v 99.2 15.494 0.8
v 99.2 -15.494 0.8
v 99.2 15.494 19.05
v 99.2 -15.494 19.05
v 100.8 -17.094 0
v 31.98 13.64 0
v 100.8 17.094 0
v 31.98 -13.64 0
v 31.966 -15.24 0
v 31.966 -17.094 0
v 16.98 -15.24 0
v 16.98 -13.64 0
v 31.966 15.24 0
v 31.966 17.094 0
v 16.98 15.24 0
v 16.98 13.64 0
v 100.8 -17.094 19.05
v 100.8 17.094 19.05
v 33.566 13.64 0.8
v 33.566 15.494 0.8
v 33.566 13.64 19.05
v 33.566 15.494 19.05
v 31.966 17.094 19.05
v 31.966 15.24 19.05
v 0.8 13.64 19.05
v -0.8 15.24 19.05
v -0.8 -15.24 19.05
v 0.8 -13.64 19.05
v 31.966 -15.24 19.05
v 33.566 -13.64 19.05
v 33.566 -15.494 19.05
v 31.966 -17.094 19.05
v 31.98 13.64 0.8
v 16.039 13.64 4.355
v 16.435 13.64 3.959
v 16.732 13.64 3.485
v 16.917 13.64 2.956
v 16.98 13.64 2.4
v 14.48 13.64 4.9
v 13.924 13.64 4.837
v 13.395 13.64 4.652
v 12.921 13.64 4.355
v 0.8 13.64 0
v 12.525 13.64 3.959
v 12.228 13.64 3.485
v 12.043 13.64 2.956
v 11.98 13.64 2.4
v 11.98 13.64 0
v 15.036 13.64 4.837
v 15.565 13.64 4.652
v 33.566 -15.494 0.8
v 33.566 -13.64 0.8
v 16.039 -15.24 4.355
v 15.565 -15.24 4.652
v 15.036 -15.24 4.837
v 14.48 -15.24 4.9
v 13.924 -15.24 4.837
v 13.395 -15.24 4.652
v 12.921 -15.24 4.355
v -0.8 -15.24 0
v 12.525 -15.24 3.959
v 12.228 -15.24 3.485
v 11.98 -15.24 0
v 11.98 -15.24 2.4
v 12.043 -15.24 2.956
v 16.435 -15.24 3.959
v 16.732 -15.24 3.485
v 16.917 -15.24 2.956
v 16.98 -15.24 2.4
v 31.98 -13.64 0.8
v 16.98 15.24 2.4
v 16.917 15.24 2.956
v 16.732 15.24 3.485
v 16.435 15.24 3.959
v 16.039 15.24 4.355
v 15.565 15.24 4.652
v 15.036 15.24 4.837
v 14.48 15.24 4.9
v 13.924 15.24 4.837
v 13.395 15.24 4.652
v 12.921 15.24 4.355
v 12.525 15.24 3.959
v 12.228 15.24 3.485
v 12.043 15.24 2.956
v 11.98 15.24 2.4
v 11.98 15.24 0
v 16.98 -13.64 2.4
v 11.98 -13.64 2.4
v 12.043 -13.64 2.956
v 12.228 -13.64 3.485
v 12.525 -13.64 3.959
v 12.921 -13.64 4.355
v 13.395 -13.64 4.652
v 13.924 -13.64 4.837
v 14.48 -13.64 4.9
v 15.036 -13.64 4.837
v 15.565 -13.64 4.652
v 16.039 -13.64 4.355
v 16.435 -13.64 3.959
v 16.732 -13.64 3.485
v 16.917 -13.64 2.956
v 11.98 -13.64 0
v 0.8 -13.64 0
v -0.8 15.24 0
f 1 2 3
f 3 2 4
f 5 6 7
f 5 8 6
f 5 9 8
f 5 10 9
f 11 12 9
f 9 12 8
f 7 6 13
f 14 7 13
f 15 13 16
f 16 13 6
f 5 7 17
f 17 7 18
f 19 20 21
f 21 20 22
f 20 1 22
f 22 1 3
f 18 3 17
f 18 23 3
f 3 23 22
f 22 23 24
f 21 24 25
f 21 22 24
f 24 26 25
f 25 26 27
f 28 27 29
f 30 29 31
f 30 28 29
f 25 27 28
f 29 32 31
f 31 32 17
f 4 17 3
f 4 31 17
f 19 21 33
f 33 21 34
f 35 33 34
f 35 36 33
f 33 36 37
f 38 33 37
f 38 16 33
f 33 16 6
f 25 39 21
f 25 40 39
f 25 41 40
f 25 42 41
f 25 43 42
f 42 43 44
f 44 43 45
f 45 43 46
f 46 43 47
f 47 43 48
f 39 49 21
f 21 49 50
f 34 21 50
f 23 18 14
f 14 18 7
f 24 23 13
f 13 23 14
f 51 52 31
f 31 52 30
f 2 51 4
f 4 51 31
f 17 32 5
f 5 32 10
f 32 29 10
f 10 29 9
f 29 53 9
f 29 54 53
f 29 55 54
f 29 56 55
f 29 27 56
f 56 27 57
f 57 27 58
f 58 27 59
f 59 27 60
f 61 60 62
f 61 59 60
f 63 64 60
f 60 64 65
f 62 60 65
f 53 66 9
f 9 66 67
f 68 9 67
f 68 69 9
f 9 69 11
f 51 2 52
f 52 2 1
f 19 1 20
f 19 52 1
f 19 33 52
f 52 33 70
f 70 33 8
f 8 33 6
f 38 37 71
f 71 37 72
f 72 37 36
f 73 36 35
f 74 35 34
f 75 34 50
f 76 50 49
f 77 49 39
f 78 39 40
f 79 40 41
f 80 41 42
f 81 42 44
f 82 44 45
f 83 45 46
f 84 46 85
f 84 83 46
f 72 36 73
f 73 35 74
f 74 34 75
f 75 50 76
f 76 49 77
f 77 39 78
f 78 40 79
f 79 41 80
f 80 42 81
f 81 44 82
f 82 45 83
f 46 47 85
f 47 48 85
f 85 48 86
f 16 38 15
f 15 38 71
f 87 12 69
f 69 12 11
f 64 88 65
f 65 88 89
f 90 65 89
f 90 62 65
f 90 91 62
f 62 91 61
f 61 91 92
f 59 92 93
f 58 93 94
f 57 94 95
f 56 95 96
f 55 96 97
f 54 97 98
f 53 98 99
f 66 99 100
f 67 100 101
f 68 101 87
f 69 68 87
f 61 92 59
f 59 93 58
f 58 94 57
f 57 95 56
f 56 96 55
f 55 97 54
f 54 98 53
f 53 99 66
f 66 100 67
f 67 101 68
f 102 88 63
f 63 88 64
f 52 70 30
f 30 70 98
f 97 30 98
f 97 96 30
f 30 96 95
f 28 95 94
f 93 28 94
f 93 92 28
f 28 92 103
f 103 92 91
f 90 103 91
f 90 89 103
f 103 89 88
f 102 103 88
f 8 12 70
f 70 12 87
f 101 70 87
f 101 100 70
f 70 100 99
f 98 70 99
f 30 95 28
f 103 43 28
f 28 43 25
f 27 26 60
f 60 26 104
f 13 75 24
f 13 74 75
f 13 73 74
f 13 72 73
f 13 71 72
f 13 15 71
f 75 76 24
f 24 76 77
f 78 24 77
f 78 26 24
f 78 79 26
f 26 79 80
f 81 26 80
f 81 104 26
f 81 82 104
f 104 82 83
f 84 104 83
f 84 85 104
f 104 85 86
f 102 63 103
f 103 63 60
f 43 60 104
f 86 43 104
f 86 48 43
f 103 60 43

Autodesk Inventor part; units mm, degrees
ref_plane "YZ Plane" through (0, 0, 0) normal (1, 0, 0) x (0, 1, 0)
ref_plane "XZ Plane" through (0, 0, 0) normal (0, 1, 0) x (-1, 0, 0)
ref_plane "XY Plane" through (0, 0, 0) normal (0, 0, 1) x (1, 0, 0)
sketch "Sketch1" plane through (0, 0, 0) normal (0, 0, 1) x (1, 0, 0)
  line L0 (0.8, -15.24) -> (-0.8, -15.24)
  line L1 (-0.8, -15.24) -> (-0.8, 15.24)
  line L2 (-0.8, 15.24) -> (0.8, 15.24)
  line L3 (0.8, 15.24) -> (0.8, -15.24)
  line L4 (0.8, -15.24) -> (-0.8, 15.24) construction
  line L5 (-0.8, -15.24) -> (0.8, 15.24) construction
  line L6 (-0.8, -15.24) -> (100.8, -15.24)
  line L7 (100.8, -15.24) -> (100.8, -13.64)
  line L8 (100.8, -13.64) -> (-0.8, -13.64)
  line L9 (-0.8, -13.64) -> (-0.8, -15.24)
  line L10 (-0.8, 15.24) -> (100.8, 15.24)
  line L11 (100.8, 15.24) -> (100.8, 13.64)
  line L12 (100.8, 13.64) -> (-0.8, 13.64)
  line L13 (-0.8, 13.64) -> (-0.8, 15.24)
  line L14 (100.8, -15.24) -> (99.2, -15.24)
  line L15 (99.2, -15.24) -> (99.2, 15.24)
  line L16 (99.2, 15.24) -> (100.8, 15.24)
  line L17 (100.8, 15.24) -> (100.8, -15.24)
  point P0 (0, 0)
  dimension "d0" = 1.6
  dimension "d1" = 30.48
  dimension "d2" = 101.6
  dimension "d3" = 1.6
  dimension "d4" = 101.6
  dimension "d5" = 1.6
  dimension "d6" = 1.6
extrude "Extrusion1" add sketch "Sketch1" along normal blind 19.05 contours L0 L1 L8 L3 | L3 L8 L15 L6 | L8 L1 L12 L3 | L15 L8 L7 L6 | L12 L1 L2 L3 | L3 L10 L15 L12 | L15 L12 L17 L8 | L15 L10 L11 L12
sketch "Sketch2" plane through (-0.8, -15.24, 0) normal (0, -1, 0) x (1, 0, 0)
  line L0 (100, 0) -> (1.6, 0) projected
  line L1 (0, 0) -> (0, 19.05) projected
  line L2 (12.78, 0) -> (17.78, 0)
  line L3 (17.78, 0) -> (17.78, 2.4)
  line L4 (17.78, 2.4) -> (12.78, 2.4)
  line L5 (12.78, 2.4) -> (12.78, 0)
  arc A0 (17.78, 2.4) -> (12.78, 2.4) centre (15.28, 2.4) ccw
  point P0 (0.8, 0)
  dimension "d9" = 12.78
  dimension "d10" = 5
  dimension "d11" = 2.4
extrude "Extrusion2" cut sketch "Sketch2" against normal up to surface (30.48 mm away)
ref_plane "Work Plane1" through (50, -15.24, 0) normal (-1, 0, 0) x (0, 0, 1)
sketch "Sketch4" plane through (-0.8, 15.24, 19.05) normal (0, 1, 0) x (1, 0, 0)
  line L0 (12.78, 19.05) -> (17.78, 19.05) projected
  line L1 (17.78, 19.05) -> (12.78, 19.05) projected
  line L2 (48.3, 19.05) -> (32.78, 19.05)
  line L3 (32.78, 19.05) -> (32.78, 18.25)
  line L4 (32.78, 18.25) -> (48.3, 18.25)
  line L5 (48.3, 18.25) -> (48.3, 19.05)
  line L6 (17.78, 19.05) -> (17.78, 16.65) projected
  line L7 (17.78, 19.05) -> (78.82, 19.05)
  line L8 (63.82, 19.05) -> (63.82, 18.25)
  line L9 (63.82, 18.25) -> (48.3, 18.25)
  line L10 (63.82, 19.05) -> (32.78, 19.05)
  line L11 (32.78, 19.05) -> (32.78, 18.25)
  line L12 (32.78, 18.25) -> (63.82, 18.25)
  line L13 (63.82, 18.25) -> (63.82, 19.05)
  point P0 (0.8, 19.05)
  dimension "d15" = 0.8
  dimension "d16" = 15
extrude "Extrusion3" add sketch "Sketch4" against normal up to surface (30.48 mm away)
sketch "Sketch5" plane through (0, 0, 0) normal (0, 0, -1) x (-1, 0, 0)
  line L0 (-99.2, -13.64) -> (-63.02, -13.64) projected
  line L1 (-99.2, 13.64) -> (-99.2, -13.64) projected
  line L2 (-63.02, 13.64) -> (-99.2, 13.64) projected
  line L3 (-63.02, 13.64) -> (-63.02, -13.64) projected
  line L4 (-31.98, 13.64) -> (-31.98, -13.64) projected
  line L5 (-16.98, 13.64) -> (-31.98, 13.64) projected
  line L6 (-16.98, 13.64) -> (-16.98, 15.24) projected
  line L7 (-100.8, 15.24) -> (-16.98, 15.24) projected
  line L8 (-100.8, -15.24) -> (-100.8, 15.24) projected
  line L9 (-16.98, -15.24) -> (-100.8, -15.24) projected
  line L10 (-16.98, -15.24) -> (-16.98, -13.64) projected
  line L11 (-31.98, -13.64) -> (-16.98, -13.64) projected
  line L12 (-11.98, -13.64) -> (-11.98, -15.24) projected
  line L13 (0.8, -15.24) -> (-11.98, -15.24) projected
  line L14 (0.8, 15.24) -> (0.8, -15.24) projected
  line L15 (-11.98, 15.24) -> (0.8, 15.24) projected
  line L16 (-11.98, 15.24) -> (-11.98, 13.64) projected
  line L17 (-0.8, 13.64) -> (-11.98, 13.64) projected
  line L18 (-0.8, -13.64) -> (-0.8, 13.64) projected
  line L19 (-11.98, -13.64) -> (-0.8, -13.64) projected
  line L20 (-100.8, -15.24) -> (-31.966, -15.24)
  line L21 (-31.966, -15.24) -> (-31.966, -17.094)
  line L22 (-31.966, -17.094) -> (-100.8, -17.094)
  line L23 (-100.8, -17.094) -> (-100.8, -15.24)
  point P0 (0, 0)
  dimension "d19" = 32.766
  dimension "d20" = 17.094
extrude "Extrusion4" add sketch "Sketch5" against normal up to surface (19.05 mm away) contours L21 L22 L23 L9
sketch "Sketch6" plane through (0, 0, 19.05) normal (0, 0, 1) x (1, 0, 0)
  line L0 (100.8, 15.24) -> (100.8, -17.094) projected
  line L1 (100.8, 15.24) -> (-0.8, 15.24) projected
  line L2 (-0.8, 15.24) -> (-0.8, -15.24) projected
  line L3 (-0.8, -15.24) -> (31.966, -15.24) projected
  line L4 (31.966, -17.094) -> (31.966, -15.24) projected
  line L5 (100.8, -17.094) -> (31.966, -17.094) projected
  line L6 (99.2, 13.64) -> (99.2, -13.64) projected
  line L7 (99.2, -13.64) -> (0.8, -13.64) projected
  line L8 (0.8, -13.64) -> (0.8, 13.64) projected
  line L9 (0.8, 13.64) -> (99.2, 13.64) projected
  line L10 (99.2, -13.64) -> (33.566, -13.64)
  line L11 (33.566, -13.64) -> (33.566, -15.494)
  line L12 (33.566, -15.494) -> (99.2, -15.494)
  line L13 (99.2, -15.494) -> (99.2, -13.64)
  point P0 (0, 0)
  dimension "d23" = 1.6
  dimension "d24" = 1.6
extrude "Extrusion5" cut sketch "Sketch6" against normal up to surface (18.25 mm away) contours L13 L12 L11 L7
mirror "Mirror3" about plane through (0, 0, 0) normal (0, 1, 0) of "Extrusion4", "Extrusion5"
sketch "Sketch7" plane through (63.02, -13.64, 0) normal (1, 0, 0) x (0, 0, -1)
  line L0 (0, 0) -> (-0.8, 0) projected
  line L1 (0, 27.28) -> (0, 0) projected
  line L2 (-0.8, 27.28) -> (0, 27.28) projected
  line L3 (-0.8, 27.28) -> (-0.8, 0) projected
  point P0 (0, 13.64)
extrude "Extrusion6" add sketch "Sketch7" along normal up to next
properties part number "CarChassis"
